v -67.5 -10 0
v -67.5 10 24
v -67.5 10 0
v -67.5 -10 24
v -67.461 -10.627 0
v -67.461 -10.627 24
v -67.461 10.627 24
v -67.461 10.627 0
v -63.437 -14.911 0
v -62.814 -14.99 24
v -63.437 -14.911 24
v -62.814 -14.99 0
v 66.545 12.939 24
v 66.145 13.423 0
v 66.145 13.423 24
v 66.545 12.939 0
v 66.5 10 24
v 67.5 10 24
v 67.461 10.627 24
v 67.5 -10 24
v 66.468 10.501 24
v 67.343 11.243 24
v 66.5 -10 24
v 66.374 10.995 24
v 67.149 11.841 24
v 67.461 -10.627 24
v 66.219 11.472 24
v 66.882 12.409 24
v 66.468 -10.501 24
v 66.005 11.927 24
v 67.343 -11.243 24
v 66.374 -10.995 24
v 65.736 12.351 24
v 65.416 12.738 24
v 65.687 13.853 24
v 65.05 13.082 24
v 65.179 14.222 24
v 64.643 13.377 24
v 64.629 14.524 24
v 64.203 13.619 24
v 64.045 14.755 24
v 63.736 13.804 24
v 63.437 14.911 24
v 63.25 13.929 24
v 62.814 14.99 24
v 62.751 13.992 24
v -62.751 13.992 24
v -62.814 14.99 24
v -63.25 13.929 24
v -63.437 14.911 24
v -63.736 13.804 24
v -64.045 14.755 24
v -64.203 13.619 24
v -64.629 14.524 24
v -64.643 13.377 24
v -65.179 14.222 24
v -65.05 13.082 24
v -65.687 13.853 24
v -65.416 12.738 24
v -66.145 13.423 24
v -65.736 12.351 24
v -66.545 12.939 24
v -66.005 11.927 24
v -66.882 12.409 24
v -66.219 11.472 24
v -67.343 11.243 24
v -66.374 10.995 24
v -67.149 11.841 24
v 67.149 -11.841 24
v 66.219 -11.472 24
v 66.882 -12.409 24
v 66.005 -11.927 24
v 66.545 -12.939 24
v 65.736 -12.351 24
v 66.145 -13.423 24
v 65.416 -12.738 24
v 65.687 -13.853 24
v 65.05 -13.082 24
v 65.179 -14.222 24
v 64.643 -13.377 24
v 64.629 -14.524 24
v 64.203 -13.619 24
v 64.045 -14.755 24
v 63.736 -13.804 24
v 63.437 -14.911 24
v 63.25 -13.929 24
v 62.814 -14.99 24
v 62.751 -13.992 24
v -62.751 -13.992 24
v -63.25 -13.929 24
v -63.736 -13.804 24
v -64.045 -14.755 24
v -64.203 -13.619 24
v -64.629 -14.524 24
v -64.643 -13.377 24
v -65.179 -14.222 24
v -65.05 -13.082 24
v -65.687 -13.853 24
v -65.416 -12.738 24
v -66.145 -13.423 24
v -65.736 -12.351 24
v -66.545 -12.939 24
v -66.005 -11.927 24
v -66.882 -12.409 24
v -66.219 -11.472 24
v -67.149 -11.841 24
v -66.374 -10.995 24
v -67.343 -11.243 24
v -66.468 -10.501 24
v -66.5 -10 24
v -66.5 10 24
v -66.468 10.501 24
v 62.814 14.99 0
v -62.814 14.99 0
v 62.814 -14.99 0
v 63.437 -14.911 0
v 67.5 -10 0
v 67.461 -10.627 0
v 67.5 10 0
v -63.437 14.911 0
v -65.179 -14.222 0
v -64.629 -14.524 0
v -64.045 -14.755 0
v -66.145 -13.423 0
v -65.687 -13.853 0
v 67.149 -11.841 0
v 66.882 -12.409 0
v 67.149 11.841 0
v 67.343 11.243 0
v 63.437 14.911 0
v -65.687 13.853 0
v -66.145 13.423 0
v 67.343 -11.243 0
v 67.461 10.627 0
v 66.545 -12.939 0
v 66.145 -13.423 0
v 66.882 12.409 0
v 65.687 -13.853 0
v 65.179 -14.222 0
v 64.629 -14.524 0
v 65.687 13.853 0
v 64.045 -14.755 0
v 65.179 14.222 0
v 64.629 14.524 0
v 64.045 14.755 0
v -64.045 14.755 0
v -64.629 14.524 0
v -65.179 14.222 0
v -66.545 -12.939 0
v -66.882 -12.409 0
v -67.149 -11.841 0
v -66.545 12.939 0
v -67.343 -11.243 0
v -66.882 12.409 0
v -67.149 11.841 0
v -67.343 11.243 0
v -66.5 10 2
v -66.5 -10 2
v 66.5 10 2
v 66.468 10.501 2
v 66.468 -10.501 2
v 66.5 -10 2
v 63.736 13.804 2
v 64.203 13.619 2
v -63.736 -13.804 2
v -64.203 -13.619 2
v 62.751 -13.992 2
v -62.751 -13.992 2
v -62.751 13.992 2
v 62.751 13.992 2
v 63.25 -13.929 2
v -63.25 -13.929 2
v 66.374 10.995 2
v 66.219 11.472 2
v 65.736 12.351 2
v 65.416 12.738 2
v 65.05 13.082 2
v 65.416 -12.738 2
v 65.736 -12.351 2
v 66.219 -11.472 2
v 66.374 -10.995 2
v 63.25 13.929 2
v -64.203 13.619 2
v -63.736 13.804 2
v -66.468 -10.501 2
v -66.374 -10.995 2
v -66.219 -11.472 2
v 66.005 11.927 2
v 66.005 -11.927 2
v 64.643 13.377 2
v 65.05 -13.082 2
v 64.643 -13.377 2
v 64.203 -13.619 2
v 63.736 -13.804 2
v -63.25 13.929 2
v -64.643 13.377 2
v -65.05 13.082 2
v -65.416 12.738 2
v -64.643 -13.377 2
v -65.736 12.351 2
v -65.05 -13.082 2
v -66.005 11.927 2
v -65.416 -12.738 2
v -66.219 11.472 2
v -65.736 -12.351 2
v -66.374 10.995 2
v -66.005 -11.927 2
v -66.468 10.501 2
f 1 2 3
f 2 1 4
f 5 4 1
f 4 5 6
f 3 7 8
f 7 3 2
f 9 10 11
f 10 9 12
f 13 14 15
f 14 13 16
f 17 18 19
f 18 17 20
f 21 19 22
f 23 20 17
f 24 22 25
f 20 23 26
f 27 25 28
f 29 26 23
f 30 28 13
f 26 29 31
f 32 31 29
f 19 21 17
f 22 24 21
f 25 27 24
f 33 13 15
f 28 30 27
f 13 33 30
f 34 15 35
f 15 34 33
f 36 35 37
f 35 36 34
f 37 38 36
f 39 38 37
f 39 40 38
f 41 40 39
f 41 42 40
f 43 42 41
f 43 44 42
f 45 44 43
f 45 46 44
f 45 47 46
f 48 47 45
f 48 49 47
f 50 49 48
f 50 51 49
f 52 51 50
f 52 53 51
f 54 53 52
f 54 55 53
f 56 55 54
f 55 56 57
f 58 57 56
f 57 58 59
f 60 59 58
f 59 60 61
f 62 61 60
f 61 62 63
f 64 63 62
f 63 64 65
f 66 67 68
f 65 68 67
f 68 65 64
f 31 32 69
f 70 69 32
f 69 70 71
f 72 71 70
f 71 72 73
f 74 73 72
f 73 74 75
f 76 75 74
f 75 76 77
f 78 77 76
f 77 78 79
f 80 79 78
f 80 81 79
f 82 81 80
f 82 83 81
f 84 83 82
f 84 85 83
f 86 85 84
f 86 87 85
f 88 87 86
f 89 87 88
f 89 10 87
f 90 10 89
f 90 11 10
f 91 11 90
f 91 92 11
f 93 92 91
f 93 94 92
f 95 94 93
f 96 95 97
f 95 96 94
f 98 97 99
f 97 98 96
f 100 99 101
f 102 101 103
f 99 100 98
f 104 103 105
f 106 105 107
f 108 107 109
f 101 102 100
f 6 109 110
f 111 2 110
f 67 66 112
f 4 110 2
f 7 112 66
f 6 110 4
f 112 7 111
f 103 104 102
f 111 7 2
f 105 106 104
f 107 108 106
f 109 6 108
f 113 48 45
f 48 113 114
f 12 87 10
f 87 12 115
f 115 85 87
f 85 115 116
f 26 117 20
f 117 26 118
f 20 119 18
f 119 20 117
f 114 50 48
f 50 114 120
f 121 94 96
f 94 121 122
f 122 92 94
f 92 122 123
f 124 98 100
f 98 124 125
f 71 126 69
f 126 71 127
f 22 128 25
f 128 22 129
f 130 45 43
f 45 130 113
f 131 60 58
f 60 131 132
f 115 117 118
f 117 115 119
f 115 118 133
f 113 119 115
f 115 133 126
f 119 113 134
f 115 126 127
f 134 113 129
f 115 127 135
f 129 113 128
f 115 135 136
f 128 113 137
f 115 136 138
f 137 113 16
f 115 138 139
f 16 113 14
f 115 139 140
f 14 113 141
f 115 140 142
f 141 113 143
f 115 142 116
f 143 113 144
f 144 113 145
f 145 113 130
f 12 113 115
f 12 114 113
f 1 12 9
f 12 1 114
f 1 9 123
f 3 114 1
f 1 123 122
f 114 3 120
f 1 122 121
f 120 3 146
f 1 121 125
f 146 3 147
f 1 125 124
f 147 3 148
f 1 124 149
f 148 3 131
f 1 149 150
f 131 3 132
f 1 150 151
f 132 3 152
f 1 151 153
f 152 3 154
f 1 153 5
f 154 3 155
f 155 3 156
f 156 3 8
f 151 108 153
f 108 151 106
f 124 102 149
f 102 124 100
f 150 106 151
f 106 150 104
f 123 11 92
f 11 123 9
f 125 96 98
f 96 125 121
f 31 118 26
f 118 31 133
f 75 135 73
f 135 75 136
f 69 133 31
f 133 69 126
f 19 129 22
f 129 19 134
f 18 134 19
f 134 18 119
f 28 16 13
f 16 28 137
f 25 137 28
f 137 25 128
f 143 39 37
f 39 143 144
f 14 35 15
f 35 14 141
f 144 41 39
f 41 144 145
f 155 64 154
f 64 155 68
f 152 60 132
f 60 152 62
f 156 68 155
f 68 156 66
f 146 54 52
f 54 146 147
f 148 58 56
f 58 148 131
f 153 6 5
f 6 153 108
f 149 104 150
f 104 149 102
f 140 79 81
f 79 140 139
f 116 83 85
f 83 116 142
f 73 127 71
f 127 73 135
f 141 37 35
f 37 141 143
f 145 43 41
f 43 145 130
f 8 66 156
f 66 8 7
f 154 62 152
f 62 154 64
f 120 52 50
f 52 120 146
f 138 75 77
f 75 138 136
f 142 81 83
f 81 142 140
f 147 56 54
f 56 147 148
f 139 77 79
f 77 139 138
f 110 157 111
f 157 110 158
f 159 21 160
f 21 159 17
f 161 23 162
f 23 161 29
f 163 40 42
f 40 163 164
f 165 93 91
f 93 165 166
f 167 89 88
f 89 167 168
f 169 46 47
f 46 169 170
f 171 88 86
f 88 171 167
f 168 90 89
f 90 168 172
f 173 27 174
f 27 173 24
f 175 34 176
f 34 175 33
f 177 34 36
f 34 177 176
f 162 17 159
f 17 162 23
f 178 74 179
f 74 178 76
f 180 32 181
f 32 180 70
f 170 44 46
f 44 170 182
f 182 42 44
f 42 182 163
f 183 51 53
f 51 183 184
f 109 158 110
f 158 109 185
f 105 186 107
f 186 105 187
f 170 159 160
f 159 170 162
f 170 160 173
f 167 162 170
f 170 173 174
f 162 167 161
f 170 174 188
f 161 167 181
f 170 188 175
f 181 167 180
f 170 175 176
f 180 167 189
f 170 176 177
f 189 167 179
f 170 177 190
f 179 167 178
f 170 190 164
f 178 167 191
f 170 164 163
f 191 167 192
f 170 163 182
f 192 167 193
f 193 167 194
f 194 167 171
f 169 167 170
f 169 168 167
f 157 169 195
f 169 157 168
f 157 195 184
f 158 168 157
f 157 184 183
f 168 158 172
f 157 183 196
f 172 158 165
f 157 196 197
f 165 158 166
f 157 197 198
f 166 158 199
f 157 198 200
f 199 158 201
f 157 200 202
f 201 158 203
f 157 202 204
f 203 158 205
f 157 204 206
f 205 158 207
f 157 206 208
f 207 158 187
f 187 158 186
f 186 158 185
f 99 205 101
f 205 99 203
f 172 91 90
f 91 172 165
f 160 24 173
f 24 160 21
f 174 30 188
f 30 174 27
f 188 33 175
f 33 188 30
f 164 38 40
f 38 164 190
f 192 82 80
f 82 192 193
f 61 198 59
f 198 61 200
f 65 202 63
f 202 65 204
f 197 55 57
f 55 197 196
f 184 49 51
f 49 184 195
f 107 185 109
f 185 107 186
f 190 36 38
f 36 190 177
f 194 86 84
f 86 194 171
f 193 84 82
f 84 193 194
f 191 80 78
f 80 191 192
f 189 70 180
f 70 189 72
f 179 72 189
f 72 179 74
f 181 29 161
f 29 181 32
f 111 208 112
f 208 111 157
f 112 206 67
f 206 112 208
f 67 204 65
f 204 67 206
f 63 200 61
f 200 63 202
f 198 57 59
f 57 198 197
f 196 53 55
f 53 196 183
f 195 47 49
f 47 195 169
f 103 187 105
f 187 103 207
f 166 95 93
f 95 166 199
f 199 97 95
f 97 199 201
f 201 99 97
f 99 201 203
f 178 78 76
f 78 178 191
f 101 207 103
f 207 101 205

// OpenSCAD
$fn = 50;


difference() {
	union() {
		hull() {
			translate(v = [-62.5000000000, 10.0000000000, 0]) {
				cylinder(h = 24, r = 5);
			}
			translate(v = [62.5000000000, 10.0000000000, 0]) {
				cylinder(h = 24, r = 5);
			}
			translate(v = [-62.5000000000, -10.0000000000, 0]) {
				cylinder(h = 24, r = 5);
			}
			translate(v = [62.5000000000, -10.0000000000, 0]) {
				cylinder(h = 24, r = 5);
			}
		}
	}
	union() {
		translate(v = [0, 0, 2]) {
			hull() {
				translate(v = [-62.5000000000, 10.0000000000, 0]) {
					cylinder(h = 22, r = 4);
				}
				translate(v = [62.5000000000, 10.0000000000, 0]) {
					cylinder(h = 22, r = 4);
				}
				translate(v = [-62.5000000000, -10.0000000000, 0]) {
					cylinder(h = 22, r = 4);
				}
				translate(v = [62.5000000000, -10.0000000000, 0]) {
					cylinder(h = 22, r = 4);
				}
			}
		}
	}
}
